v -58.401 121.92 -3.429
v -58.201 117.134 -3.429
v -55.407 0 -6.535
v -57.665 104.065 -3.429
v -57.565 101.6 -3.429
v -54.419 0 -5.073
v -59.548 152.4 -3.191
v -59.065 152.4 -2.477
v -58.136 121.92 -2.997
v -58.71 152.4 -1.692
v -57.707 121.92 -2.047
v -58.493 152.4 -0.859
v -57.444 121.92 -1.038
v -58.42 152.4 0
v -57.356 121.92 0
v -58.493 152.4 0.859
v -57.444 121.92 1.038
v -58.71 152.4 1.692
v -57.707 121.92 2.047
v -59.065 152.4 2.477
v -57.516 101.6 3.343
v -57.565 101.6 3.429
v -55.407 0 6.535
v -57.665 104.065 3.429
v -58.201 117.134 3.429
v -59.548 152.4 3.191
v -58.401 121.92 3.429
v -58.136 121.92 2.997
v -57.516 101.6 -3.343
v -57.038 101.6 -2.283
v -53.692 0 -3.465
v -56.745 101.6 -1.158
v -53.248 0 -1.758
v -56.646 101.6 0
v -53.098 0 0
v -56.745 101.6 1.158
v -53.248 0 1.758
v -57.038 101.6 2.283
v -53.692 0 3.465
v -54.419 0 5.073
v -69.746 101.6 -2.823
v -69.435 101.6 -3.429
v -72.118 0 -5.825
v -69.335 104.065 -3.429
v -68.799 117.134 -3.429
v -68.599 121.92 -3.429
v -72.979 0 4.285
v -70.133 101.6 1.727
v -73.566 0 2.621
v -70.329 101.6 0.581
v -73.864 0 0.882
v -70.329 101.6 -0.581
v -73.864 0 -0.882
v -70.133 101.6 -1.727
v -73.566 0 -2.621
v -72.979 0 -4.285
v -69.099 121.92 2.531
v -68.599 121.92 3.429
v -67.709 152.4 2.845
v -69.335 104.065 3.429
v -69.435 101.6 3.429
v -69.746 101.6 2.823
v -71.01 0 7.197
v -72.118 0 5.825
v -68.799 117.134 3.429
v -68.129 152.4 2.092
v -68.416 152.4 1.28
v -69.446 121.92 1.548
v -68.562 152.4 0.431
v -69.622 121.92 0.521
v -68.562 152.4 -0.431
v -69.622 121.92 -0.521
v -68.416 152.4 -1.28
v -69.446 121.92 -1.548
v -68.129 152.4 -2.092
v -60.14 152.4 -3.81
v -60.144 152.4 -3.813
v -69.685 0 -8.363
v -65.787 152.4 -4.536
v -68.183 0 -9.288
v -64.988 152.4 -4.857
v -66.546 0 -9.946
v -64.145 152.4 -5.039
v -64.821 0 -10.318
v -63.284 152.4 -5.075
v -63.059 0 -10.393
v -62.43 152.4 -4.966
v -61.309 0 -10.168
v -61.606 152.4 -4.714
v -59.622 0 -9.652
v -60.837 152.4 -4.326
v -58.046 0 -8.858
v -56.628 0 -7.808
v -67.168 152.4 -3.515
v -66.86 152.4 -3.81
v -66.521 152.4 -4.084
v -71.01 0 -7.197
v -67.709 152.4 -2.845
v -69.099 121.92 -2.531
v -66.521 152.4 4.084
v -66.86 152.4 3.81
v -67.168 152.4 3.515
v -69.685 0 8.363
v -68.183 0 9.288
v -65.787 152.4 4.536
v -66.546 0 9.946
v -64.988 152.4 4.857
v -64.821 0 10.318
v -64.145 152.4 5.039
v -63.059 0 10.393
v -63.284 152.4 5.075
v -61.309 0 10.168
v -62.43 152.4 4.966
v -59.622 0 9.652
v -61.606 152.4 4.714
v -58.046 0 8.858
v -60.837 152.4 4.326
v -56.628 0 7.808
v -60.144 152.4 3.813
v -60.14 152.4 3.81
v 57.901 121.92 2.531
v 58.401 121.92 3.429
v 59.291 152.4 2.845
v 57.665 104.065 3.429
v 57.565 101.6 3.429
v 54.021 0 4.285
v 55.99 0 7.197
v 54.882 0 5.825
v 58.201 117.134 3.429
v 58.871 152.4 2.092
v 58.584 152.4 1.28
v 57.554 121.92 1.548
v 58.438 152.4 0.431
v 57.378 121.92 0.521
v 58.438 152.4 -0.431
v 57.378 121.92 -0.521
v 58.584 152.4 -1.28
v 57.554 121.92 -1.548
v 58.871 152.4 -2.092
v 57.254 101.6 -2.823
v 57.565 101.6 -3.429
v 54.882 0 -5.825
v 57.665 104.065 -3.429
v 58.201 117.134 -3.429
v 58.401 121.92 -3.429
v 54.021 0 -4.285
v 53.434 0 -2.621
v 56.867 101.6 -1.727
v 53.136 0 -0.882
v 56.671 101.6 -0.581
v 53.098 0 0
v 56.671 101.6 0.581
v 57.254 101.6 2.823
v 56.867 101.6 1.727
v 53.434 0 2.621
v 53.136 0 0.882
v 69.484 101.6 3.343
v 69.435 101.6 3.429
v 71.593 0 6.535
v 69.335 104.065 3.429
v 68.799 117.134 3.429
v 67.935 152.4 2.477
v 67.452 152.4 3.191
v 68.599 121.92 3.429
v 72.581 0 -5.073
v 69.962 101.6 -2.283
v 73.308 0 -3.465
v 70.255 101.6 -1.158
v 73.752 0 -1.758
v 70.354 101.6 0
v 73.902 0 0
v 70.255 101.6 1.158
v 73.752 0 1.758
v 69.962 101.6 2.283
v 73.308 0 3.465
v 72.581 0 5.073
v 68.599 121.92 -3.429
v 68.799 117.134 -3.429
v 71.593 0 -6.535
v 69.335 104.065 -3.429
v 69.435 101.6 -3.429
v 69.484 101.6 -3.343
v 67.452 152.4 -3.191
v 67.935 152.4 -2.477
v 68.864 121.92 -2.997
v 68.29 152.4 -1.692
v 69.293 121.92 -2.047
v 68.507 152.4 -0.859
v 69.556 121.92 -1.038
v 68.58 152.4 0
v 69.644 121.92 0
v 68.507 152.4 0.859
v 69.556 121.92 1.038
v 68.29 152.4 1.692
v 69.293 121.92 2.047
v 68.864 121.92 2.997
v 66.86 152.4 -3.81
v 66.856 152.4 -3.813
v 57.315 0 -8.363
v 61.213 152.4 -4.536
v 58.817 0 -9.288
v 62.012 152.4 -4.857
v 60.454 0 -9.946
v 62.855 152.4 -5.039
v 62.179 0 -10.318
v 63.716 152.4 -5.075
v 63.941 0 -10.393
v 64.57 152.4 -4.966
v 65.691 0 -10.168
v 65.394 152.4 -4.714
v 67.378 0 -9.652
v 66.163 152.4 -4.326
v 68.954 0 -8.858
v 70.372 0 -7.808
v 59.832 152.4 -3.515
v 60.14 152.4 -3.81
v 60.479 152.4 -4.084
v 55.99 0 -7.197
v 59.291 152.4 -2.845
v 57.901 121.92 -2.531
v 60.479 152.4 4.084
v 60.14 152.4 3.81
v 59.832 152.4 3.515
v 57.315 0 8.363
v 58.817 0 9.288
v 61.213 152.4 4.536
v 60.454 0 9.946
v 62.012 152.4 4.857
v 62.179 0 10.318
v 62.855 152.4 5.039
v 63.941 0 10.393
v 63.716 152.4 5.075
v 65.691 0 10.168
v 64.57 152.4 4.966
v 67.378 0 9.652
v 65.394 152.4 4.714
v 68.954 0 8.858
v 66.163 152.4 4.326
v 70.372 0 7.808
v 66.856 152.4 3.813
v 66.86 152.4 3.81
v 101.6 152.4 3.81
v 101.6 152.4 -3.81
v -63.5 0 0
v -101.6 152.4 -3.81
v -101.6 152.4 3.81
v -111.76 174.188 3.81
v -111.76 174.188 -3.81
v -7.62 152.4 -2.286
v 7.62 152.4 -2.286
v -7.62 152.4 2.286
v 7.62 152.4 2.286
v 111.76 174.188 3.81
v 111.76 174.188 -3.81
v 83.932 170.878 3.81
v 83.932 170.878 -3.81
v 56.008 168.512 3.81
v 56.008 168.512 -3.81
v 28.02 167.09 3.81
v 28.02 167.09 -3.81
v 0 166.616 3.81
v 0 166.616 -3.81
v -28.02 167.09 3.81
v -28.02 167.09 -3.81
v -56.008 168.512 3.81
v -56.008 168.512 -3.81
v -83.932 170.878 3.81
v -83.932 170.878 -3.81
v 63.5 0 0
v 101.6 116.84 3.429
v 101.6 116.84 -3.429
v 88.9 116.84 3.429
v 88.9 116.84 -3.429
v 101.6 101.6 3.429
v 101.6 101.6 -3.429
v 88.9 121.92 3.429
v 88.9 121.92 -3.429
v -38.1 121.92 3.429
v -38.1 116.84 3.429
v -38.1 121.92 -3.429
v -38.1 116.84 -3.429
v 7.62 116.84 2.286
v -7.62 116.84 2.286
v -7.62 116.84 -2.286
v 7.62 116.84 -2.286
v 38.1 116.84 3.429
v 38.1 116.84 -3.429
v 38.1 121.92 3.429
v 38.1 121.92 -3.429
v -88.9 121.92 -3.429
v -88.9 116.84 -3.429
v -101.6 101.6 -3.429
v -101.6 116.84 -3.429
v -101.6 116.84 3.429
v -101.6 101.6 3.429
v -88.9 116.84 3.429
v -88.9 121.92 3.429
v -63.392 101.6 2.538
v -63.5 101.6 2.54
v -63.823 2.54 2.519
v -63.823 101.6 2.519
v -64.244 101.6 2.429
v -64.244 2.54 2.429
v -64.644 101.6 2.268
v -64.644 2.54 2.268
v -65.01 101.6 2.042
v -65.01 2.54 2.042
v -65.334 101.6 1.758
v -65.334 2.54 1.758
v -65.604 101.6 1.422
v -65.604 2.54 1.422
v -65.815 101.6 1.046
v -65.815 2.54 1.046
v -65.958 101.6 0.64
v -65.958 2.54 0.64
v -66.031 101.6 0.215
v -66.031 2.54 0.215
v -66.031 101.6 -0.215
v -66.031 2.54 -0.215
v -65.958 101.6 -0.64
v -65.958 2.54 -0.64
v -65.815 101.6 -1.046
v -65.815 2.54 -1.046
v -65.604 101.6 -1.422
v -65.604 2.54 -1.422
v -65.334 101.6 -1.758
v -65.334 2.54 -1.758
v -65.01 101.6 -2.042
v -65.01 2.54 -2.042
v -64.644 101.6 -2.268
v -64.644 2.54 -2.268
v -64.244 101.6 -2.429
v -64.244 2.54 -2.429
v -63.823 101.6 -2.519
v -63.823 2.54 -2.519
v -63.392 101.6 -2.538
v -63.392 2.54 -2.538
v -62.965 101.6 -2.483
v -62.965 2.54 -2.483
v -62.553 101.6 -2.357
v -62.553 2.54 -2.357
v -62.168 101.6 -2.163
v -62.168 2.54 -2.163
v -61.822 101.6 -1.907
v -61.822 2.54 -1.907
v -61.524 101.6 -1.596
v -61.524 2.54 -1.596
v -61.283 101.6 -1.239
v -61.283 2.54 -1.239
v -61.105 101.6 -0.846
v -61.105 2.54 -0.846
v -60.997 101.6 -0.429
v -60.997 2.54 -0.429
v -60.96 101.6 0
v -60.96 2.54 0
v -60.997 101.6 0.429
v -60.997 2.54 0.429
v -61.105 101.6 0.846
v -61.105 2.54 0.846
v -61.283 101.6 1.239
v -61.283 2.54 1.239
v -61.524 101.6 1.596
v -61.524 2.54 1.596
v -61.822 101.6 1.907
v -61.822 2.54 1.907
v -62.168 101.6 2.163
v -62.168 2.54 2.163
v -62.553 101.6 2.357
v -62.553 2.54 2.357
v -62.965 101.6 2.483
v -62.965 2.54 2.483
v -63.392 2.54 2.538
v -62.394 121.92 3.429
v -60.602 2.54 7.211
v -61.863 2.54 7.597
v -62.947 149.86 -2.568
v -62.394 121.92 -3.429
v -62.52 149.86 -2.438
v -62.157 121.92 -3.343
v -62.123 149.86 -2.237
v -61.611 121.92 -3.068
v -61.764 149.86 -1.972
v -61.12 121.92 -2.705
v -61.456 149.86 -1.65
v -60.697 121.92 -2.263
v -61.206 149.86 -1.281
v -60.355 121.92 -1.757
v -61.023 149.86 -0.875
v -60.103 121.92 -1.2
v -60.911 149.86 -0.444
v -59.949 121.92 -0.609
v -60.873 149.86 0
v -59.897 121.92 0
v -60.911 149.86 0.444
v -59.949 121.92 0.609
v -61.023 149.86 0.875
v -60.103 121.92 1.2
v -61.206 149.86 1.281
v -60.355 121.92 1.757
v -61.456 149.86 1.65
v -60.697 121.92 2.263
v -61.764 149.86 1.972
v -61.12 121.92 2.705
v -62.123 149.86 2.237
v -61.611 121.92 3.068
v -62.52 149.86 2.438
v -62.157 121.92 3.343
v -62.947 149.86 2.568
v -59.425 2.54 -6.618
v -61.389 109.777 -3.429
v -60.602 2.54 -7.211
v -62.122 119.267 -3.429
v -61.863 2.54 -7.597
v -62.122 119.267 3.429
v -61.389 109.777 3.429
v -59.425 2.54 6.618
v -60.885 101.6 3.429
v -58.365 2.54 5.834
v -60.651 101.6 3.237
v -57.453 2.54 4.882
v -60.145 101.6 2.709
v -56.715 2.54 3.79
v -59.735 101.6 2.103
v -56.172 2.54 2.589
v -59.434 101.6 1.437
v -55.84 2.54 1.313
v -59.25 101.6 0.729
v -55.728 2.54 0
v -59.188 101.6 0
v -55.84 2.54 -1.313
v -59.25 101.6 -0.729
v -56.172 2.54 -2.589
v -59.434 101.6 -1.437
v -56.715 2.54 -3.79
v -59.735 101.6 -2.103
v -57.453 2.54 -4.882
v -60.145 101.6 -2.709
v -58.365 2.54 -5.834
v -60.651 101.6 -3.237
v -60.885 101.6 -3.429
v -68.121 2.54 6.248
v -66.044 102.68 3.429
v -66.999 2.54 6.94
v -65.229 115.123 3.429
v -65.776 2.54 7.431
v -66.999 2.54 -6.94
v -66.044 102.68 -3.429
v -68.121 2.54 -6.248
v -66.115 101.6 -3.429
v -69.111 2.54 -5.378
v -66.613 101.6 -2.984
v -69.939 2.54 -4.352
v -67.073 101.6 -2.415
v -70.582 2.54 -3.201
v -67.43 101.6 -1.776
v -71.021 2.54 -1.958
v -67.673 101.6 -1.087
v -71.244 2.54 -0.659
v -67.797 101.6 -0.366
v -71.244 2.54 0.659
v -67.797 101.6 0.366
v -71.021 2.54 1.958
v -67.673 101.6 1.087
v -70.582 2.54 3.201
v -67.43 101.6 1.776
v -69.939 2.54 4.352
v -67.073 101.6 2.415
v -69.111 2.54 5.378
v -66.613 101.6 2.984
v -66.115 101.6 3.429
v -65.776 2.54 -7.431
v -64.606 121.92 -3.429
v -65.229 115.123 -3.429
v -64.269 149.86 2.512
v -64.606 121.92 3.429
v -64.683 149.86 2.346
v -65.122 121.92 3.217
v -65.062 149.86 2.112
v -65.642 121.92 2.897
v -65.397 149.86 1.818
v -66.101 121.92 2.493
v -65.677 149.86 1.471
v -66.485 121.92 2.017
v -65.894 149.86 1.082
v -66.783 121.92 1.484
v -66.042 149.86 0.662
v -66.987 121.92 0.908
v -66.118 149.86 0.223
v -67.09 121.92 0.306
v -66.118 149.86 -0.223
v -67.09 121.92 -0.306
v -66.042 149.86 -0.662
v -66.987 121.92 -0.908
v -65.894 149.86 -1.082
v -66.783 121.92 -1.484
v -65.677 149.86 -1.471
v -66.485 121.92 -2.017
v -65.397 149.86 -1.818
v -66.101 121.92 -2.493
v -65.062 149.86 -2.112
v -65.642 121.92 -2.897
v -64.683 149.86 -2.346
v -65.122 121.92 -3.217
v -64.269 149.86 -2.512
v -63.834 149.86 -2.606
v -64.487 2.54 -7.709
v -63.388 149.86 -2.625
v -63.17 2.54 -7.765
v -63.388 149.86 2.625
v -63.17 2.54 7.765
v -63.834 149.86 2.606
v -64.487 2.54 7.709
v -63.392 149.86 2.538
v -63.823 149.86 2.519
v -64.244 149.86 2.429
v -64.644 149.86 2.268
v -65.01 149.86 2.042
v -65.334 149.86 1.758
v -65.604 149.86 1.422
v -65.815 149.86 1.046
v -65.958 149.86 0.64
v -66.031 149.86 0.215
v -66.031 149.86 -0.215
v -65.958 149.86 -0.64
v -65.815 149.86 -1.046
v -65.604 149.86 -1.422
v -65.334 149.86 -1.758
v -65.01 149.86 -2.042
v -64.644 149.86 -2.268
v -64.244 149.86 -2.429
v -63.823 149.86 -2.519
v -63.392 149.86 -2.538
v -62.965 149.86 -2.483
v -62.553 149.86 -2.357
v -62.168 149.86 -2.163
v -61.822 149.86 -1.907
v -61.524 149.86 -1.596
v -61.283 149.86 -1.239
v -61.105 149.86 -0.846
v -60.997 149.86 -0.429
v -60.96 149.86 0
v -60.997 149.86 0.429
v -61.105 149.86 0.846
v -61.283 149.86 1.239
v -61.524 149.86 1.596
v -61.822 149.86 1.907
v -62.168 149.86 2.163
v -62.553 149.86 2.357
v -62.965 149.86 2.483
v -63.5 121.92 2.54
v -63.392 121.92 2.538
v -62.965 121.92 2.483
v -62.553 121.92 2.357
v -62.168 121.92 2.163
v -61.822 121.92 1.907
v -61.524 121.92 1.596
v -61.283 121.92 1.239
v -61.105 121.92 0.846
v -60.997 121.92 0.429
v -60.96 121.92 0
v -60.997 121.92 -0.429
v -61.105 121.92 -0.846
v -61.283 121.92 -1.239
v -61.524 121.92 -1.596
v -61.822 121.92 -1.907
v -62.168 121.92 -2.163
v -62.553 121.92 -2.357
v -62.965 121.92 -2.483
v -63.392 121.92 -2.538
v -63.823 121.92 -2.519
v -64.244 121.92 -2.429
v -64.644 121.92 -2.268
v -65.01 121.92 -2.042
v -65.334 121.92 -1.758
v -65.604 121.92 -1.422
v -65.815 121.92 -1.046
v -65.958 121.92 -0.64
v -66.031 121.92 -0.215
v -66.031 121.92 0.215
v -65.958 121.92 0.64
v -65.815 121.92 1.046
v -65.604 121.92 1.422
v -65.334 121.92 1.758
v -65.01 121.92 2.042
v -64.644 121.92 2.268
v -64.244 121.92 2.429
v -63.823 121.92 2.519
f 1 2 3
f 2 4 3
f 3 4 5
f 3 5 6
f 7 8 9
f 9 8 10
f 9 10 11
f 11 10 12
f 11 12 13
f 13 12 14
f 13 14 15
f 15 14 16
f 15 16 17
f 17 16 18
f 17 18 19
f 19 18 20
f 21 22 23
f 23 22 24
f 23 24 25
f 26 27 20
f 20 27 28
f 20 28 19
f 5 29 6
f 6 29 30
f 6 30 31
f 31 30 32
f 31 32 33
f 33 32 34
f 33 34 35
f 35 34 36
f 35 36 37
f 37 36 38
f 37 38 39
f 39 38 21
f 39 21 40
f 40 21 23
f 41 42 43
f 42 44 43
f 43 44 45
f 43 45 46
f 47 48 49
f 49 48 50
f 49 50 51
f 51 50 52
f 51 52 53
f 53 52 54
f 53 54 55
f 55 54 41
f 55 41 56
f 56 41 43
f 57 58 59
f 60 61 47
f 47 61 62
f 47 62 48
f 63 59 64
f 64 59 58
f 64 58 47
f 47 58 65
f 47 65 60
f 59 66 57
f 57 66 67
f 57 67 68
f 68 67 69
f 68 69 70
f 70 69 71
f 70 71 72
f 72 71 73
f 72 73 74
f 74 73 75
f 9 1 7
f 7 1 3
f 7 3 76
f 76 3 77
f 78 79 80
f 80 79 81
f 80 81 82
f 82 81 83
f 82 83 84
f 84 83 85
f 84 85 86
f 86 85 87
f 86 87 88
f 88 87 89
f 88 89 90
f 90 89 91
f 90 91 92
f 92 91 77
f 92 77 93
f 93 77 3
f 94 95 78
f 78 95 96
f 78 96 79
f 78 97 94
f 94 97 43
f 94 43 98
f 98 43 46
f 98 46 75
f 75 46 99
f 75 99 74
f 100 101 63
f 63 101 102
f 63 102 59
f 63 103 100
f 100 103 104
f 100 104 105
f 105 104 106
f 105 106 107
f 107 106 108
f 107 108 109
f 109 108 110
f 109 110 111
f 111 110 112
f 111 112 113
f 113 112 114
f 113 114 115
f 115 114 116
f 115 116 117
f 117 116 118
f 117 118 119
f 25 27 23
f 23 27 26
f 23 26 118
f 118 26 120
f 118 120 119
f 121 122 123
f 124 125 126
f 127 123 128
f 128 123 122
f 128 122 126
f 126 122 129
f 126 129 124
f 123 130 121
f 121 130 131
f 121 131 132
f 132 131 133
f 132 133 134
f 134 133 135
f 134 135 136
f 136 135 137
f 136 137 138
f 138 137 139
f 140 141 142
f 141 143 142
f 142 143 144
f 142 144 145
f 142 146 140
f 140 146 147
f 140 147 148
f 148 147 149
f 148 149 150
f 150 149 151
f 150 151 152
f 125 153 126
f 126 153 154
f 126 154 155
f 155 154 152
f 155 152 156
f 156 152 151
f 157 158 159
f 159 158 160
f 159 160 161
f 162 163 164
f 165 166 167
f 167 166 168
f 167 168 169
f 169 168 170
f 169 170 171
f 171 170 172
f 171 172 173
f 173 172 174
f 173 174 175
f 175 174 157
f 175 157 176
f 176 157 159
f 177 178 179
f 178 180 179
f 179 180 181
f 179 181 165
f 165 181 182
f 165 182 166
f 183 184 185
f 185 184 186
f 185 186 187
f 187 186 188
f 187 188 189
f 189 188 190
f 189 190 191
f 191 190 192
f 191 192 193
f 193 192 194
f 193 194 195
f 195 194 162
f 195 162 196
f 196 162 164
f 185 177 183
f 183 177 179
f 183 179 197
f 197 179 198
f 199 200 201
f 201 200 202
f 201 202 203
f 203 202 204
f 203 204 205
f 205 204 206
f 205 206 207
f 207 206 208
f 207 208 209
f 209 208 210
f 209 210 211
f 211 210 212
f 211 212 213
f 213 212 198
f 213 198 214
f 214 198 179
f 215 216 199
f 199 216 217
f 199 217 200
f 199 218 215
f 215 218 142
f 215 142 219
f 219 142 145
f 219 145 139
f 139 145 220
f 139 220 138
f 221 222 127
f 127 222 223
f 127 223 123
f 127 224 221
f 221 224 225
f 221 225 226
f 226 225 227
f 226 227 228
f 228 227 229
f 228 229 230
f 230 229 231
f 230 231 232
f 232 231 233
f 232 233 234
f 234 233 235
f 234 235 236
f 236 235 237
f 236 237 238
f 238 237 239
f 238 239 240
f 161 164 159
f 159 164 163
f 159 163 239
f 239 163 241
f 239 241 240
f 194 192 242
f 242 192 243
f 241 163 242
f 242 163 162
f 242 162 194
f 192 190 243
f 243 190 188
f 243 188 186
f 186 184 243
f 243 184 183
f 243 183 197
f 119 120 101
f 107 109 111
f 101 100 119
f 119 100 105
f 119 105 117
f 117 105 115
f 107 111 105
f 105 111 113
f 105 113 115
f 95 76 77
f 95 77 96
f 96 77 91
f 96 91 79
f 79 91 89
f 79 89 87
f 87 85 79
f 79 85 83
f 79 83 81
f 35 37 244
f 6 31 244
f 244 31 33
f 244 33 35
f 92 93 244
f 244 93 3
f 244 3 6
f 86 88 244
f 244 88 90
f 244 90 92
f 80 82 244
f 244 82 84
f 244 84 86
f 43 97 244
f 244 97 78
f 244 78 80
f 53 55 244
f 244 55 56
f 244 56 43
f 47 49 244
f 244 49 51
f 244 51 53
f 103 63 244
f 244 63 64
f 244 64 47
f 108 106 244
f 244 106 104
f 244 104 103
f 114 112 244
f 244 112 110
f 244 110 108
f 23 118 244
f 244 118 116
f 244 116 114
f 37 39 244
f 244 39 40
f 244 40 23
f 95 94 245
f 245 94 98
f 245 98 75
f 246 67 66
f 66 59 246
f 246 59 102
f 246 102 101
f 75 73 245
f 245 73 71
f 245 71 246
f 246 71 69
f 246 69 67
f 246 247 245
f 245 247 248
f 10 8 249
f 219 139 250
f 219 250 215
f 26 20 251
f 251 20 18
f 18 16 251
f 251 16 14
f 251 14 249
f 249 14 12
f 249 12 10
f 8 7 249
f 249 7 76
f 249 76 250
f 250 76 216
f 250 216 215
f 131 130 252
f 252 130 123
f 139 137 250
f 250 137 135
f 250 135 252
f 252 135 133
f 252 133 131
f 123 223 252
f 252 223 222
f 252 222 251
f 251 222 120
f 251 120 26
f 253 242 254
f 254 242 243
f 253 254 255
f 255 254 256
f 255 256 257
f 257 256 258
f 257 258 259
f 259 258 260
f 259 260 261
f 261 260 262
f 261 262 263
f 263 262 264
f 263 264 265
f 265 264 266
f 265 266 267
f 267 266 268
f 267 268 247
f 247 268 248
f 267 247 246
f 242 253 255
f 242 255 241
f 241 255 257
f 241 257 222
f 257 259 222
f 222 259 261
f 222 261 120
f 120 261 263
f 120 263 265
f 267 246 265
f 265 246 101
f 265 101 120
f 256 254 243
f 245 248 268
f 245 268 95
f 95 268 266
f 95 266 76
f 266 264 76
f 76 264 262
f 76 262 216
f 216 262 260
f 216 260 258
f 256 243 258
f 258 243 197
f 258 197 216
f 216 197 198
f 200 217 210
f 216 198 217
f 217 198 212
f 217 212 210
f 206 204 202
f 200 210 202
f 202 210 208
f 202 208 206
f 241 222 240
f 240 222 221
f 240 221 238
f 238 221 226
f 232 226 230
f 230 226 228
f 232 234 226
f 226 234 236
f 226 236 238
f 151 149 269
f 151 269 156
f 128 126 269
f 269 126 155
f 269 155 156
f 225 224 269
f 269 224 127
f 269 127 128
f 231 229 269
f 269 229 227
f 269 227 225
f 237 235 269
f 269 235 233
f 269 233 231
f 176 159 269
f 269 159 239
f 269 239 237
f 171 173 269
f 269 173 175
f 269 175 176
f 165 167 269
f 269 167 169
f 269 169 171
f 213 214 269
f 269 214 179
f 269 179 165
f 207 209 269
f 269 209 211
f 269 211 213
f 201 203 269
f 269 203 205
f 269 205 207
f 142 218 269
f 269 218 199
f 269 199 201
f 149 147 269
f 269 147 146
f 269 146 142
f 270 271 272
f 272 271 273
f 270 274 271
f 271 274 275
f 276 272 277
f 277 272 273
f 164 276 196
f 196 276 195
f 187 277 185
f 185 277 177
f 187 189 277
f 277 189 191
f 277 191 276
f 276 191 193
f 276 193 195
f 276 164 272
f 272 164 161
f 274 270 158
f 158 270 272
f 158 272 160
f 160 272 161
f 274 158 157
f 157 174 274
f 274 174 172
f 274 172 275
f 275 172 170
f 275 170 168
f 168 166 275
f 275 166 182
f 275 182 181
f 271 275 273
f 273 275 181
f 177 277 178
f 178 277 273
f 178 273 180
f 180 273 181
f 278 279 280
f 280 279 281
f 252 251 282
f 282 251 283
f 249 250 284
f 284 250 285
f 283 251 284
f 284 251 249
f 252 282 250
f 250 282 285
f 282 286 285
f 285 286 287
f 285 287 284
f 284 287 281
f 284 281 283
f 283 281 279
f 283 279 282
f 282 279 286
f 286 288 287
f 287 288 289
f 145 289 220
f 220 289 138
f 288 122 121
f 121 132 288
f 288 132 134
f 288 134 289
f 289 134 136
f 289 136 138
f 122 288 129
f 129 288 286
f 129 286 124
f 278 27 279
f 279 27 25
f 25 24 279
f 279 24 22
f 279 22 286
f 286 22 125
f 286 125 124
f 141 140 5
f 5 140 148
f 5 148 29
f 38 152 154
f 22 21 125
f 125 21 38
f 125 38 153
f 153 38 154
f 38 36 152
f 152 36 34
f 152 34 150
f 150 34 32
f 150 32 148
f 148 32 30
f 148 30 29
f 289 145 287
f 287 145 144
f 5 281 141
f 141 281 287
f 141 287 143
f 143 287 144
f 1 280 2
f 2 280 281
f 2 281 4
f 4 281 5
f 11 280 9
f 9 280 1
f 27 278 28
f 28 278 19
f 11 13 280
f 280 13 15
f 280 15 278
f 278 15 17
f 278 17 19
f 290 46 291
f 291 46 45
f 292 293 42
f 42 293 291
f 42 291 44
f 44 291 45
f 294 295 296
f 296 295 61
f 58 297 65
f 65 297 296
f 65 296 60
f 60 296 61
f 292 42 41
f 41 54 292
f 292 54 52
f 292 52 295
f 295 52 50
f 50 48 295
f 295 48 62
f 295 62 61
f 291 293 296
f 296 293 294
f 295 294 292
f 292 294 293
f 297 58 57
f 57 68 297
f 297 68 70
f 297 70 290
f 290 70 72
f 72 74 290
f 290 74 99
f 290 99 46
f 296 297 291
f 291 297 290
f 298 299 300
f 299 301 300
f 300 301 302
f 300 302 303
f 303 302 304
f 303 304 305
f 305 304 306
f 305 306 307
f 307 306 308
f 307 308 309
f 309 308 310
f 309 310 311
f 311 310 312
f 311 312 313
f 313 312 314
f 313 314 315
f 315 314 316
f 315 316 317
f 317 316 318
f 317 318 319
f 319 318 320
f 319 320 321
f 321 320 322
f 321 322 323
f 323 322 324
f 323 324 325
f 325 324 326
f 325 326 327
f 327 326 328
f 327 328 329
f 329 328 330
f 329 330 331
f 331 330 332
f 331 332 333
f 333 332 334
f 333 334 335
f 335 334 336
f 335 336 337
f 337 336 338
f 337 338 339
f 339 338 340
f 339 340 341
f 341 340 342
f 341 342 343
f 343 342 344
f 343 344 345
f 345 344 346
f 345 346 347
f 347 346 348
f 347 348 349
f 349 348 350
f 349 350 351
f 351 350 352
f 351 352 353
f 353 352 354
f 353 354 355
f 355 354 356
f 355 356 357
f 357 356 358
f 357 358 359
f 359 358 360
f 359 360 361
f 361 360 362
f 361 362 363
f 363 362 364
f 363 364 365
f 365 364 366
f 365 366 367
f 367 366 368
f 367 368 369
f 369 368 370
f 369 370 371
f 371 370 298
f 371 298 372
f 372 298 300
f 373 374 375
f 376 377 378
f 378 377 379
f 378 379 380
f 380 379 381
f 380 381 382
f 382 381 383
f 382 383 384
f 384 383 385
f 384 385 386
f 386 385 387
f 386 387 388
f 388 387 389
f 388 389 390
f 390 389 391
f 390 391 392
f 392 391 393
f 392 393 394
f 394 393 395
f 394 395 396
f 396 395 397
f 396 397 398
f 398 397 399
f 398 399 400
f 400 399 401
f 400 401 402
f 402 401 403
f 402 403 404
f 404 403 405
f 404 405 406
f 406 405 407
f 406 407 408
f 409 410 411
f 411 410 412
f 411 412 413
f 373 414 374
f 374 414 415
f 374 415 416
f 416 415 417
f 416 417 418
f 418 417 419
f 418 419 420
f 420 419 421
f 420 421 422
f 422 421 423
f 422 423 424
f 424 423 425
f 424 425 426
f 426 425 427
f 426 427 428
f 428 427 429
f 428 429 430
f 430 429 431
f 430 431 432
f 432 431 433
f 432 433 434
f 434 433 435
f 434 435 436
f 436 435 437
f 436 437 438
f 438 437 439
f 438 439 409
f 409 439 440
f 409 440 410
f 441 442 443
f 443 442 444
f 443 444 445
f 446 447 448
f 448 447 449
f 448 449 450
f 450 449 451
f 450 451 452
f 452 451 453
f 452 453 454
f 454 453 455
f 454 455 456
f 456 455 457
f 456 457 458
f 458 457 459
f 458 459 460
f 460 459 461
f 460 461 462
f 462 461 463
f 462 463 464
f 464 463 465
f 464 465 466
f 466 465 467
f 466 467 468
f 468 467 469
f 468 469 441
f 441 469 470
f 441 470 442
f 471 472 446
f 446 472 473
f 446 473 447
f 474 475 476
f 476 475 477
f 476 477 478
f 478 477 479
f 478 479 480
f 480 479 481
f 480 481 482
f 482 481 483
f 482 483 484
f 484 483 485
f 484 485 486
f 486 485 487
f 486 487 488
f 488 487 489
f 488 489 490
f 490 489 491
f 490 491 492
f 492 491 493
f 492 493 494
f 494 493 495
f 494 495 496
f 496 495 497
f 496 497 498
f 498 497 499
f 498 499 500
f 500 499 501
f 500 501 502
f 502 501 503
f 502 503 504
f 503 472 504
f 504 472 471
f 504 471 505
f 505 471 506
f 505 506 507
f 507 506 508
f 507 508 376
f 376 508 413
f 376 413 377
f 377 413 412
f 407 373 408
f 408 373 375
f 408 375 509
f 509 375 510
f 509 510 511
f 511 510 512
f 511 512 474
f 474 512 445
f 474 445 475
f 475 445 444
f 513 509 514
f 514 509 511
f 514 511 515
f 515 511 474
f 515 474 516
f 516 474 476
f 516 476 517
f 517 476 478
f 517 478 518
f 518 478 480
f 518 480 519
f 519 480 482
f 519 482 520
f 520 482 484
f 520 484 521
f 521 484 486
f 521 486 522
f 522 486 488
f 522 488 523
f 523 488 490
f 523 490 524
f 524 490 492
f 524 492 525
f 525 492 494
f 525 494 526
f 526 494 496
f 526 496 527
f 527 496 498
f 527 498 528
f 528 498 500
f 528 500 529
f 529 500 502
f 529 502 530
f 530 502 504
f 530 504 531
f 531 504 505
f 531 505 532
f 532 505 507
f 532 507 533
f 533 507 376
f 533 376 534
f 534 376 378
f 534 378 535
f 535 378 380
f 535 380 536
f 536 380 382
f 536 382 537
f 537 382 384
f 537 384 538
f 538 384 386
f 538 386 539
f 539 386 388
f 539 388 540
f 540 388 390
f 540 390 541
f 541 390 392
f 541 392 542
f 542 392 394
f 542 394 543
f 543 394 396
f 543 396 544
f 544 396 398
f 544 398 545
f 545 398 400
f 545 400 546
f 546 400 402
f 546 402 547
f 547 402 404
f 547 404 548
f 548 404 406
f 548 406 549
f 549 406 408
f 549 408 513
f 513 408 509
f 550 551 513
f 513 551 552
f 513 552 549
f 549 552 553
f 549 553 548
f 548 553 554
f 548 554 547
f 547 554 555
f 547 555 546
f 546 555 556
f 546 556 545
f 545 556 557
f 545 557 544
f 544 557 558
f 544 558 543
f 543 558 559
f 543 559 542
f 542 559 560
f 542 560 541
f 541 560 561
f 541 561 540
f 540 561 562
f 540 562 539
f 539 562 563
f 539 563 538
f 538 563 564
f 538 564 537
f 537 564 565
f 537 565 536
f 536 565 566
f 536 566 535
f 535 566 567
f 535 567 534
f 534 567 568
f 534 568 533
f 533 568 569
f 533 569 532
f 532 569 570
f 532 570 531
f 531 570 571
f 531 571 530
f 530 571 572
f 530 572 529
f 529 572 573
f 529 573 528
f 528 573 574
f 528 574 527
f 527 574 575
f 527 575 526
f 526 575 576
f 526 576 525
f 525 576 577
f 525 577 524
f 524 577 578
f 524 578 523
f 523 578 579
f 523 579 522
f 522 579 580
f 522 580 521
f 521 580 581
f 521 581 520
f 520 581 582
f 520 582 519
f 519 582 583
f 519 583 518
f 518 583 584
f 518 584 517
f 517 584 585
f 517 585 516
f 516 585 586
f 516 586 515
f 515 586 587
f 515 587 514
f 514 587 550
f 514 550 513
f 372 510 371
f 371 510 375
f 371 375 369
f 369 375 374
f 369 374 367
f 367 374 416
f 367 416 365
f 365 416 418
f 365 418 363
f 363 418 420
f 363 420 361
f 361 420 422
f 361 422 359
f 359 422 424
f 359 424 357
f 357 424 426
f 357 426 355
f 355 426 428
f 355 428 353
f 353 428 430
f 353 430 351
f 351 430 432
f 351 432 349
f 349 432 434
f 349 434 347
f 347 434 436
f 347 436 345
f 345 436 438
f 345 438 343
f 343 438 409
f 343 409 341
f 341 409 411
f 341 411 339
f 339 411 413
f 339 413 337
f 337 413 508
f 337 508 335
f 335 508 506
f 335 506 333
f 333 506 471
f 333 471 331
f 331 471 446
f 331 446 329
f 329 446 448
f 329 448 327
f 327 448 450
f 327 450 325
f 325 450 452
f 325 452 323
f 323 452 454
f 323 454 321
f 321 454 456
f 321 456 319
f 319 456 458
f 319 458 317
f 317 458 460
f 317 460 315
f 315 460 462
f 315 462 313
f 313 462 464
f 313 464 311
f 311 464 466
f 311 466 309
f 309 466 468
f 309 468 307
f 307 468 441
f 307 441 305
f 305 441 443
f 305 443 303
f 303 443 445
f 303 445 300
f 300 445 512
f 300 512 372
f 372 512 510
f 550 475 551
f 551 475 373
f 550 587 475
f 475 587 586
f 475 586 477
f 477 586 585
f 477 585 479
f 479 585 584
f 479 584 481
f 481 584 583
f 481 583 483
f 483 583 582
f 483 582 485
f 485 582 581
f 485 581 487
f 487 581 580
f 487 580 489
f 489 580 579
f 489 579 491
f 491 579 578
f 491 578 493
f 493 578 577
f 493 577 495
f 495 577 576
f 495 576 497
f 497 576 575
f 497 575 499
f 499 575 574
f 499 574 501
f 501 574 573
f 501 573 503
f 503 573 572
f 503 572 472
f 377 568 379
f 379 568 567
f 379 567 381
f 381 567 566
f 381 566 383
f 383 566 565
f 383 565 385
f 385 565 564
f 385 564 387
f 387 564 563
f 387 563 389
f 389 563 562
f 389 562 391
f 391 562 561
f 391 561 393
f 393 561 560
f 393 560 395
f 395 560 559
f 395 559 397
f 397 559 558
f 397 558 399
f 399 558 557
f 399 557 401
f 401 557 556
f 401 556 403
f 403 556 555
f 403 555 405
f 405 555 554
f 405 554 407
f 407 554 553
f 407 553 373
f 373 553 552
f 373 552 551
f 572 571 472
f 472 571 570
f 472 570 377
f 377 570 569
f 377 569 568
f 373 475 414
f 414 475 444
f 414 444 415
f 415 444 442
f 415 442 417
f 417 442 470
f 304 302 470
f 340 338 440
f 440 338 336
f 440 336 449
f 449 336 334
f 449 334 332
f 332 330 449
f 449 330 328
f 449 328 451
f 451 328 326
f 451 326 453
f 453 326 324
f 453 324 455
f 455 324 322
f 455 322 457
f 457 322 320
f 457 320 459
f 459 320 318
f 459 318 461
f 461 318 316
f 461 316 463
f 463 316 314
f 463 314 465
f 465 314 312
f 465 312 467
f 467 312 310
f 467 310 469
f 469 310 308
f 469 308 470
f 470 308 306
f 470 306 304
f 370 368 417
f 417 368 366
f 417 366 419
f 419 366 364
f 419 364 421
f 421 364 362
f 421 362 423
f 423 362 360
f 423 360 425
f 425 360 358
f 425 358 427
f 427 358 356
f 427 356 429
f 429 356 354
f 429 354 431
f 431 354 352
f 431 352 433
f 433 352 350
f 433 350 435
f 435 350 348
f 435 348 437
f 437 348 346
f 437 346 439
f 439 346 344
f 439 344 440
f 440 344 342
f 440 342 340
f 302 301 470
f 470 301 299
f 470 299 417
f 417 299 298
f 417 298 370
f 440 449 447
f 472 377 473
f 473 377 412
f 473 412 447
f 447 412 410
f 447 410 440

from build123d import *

# Parameters (mm, degrees)
SKETCH1_8_W         = 203.2
SKETCH1_8_H         = 15.24
SKETCH1_8_W_2       = 50.8
SKETCH1_8_H_2       = 5.08
BOSS_EXTRUDE1_DEPTH = 3.429
SKETCH1_9_W         = 15.24
SKETCH1_9_H         = 35.56
BOSS_EXTRUDE2_DEPTH = 2.286
BOSS_EXTRUDE3_DEPTH = 3.81


# Read off the part's stored shape, not the designer's step: Revolve-Thin2
with BuildPart() as part:
    # Revolve-Thin2 outline → Revolve-Thin2 (revolve)
    with BuildSketch(Plane(origin=(-63.5, 0, 0), x_dir=(1, 0, 0), z_dir=(0, 0, 1))):
        Polygon((0, 152.4), (0, 0), (10.401925271, 0), (5.08, 152.4), align=None)
        Polygon((2.54, 2.54), (2.54, 149.86), (2.627150512, 149.86), (7.771678274, 2.54), align=None, mode=Mode.SUBTRACT)
    revolve(axis=Axis((-63.5, 0, 0), (0, 1, 0)))



with BuildPart() as body_2:
    # Sketch1<4> → Revolve1 (revolve)
    with BuildSketch(Plane.XY):
        Polygon((53.098074729, 0), (63.5, 0), (63.5, 152.4), (58.42, 152.4), align=None)
    revolve(axis=Axis((63.5, 0, 0), (0, 1, 0)))


with BuildPart() as body_3:
    # Sketch1<8> → Boss-Extrude1 (new, symmetric)
    with BuildSketch(Plane.XY):
        with Locations((0, 109.22)):
            Rectangle(SKETCH1_8_W, SKETCH1_8_H)
        with Locations((63.5, 119.38)):
            Rectangle(SKETCH1_8_W_2, SKETCH1_8_H_2)
        with Locations((-63.5, 119.38)):
            Rectangle(SKETCH1_8_W_2, SKETCH1_8_H_2)
    extrude(amount=BOSS_EXTRUDE1_DEPTH, both=True)

    # Sketch1<9> → Boss-Extrude2 (add, symmetric)
    with BuildSketch(Plane.XY):
        with Locations((0, 134.62)):
            Rectangle(SKETCH1_9_W, SKETCH1_9_H)
    extrude(amount=BOSS_EXTRUDE2_DEPTH, both=True)


with BuildPart() as part_1:
    add(part.part)

    add(body_2.part)  # Boss-Extrude3 merges body 2

    add(body_3.part)  # Boss-Extrude3 merges body 3
    # Sketch3 → Boss-Extrude3 (add, symmetric)
    with BuildSketch(Plane.XY):
        with BuildLine():
            Line((-101.6, 152.4), (101.6, 152.4))
            Line((101.6, 152.4), (111.76, 174.188190312))
            ThreePointArc((111.76, 174.188190312), (0, 166.616423921), (-111.76, 174.188190312))
            Line((-111.76, 174.188190312), (-101.6, 152.4))
        make_face()
    extrude(amount=BOSS_EXTRUDE3_DEPTH, both=True)


solid = part_1.part
